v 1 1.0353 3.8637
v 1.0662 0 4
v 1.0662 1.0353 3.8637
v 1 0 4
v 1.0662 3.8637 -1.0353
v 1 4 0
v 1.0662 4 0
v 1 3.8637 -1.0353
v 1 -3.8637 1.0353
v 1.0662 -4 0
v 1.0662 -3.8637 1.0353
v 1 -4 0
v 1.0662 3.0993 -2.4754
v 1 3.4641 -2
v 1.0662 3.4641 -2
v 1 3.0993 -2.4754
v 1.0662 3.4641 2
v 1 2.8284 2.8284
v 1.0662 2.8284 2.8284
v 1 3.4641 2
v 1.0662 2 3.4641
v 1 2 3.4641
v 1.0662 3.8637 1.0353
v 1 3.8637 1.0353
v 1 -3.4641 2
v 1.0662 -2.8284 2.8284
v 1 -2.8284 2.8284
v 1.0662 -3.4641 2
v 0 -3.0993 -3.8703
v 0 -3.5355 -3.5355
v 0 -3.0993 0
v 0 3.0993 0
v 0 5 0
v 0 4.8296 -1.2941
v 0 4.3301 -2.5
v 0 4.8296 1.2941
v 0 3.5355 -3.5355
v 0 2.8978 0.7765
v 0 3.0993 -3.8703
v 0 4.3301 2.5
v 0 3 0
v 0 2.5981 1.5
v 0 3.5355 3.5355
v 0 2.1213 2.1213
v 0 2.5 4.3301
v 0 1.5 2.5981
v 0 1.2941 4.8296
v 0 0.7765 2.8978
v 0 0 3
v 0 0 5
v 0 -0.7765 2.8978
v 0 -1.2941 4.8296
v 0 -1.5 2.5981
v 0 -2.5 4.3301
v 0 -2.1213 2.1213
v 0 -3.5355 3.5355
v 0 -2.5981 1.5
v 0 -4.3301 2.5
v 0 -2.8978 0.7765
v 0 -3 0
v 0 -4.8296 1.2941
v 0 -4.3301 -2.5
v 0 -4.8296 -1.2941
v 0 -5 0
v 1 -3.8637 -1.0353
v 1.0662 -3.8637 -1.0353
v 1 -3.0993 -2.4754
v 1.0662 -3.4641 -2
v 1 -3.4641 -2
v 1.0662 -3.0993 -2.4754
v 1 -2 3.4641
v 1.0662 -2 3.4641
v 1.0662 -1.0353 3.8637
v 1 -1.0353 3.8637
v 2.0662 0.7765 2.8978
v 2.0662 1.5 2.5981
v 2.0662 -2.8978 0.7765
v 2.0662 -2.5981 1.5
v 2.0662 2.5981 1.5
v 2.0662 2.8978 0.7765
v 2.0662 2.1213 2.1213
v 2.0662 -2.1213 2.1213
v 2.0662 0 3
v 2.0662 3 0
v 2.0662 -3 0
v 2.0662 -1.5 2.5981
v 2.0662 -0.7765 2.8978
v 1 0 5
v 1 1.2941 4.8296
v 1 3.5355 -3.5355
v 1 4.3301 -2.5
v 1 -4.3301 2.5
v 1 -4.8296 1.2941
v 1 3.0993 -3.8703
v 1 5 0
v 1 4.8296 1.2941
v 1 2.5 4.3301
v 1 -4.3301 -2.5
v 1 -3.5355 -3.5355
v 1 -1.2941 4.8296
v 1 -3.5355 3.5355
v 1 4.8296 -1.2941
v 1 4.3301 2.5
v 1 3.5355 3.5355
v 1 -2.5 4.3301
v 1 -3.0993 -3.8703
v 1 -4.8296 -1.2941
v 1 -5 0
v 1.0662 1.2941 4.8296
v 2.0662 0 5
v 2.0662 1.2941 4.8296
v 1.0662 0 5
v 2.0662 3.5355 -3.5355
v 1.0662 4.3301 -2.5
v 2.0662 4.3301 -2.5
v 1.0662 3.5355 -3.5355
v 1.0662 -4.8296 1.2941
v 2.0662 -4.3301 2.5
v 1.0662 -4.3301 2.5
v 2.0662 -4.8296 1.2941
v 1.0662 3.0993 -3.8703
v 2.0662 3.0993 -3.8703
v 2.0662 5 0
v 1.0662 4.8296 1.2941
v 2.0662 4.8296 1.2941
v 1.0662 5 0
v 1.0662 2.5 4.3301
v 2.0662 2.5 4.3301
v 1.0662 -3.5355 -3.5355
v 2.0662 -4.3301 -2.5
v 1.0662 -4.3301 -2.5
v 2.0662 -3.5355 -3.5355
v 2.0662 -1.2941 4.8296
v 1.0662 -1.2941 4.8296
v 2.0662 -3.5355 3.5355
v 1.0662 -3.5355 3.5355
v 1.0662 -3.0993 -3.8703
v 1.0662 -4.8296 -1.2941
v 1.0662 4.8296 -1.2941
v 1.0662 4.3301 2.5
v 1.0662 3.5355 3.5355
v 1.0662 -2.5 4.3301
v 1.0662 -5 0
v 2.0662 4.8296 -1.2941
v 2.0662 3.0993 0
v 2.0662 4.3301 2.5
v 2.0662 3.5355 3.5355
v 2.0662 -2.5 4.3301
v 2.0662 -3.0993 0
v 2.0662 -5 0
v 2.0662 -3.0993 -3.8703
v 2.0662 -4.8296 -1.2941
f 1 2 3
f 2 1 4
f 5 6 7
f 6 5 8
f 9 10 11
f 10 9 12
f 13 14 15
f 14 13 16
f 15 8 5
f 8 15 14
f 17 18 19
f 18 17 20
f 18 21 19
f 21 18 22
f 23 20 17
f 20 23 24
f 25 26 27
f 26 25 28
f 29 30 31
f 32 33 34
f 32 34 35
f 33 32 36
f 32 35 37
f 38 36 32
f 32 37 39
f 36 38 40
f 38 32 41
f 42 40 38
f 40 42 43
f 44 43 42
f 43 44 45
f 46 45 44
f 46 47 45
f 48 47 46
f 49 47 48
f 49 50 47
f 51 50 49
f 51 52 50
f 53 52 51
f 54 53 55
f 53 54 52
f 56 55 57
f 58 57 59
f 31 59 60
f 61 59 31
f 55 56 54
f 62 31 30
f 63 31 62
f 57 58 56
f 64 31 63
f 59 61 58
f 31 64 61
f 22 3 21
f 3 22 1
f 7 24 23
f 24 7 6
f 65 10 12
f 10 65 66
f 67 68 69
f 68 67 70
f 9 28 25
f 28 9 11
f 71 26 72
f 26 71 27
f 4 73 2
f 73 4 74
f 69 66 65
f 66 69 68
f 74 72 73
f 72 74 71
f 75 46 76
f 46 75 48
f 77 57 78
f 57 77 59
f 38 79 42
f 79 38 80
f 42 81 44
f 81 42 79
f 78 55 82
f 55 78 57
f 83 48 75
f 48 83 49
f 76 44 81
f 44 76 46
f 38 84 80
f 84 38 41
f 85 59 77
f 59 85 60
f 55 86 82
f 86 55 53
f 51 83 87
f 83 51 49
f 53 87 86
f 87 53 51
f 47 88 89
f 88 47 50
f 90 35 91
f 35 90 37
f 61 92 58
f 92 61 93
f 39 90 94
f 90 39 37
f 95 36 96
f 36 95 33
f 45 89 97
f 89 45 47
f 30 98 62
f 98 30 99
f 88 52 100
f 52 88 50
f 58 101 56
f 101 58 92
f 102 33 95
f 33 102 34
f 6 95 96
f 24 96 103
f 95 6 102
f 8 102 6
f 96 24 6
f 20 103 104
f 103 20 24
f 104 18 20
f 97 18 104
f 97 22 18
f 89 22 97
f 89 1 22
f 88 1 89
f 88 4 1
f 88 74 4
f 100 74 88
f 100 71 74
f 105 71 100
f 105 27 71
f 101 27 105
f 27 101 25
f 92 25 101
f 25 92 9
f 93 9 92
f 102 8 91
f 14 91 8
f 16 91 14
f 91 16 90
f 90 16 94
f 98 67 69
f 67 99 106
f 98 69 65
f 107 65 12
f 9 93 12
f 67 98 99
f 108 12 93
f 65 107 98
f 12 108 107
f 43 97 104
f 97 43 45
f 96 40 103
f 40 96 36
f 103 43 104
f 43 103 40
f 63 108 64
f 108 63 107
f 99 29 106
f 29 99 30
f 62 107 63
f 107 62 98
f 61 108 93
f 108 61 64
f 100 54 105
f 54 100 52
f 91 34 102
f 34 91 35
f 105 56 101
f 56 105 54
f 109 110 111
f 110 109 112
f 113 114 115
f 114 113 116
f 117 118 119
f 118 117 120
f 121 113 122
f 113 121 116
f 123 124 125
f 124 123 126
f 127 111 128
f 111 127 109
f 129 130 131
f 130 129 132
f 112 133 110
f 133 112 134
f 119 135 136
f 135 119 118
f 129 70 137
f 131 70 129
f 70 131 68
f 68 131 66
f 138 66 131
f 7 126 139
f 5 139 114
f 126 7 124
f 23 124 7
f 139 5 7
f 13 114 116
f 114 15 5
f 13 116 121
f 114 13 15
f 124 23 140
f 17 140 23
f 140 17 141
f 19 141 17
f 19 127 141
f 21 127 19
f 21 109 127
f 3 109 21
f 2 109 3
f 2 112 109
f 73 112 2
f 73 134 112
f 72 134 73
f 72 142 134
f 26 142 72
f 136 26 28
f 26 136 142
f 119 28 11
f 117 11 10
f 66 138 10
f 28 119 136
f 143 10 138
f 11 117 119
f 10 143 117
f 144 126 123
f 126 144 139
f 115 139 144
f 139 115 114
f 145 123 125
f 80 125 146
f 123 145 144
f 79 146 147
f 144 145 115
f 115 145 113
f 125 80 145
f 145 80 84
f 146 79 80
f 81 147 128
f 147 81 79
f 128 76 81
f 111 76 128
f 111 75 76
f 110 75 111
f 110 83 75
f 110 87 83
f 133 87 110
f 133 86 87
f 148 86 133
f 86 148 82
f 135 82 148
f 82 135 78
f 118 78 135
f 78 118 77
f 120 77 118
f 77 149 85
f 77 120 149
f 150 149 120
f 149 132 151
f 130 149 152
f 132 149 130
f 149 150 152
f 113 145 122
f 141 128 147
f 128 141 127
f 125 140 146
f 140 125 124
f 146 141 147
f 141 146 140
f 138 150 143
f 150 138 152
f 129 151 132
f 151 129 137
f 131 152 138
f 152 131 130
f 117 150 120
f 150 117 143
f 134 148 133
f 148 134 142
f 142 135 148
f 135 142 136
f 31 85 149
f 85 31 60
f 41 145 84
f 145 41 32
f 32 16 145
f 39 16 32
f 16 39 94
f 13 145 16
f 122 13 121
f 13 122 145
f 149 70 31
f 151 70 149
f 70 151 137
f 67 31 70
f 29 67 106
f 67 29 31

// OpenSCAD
// file: ../build_environments.scad
// build_environments.scad: modules to build level sections
//

module pool(diameter=10.0, wall_height=2.0, step_width=3.0, connections=[])
{
    difference() {
        union() {
        difference() {
            cylinder(h=0.5,r1=diameter+step_width,r2=diameter+step_width,$fn=48);
            translate([0,0,-0.1])
                cylinder(h=0.7,r1=diameter,r2=diameter,$fn=48);
        }
        difference() {
            cylinder(h=wall_height,r1=diameter+step_width+1.0,r2=diameter+step_width+1.0,$fn=48);
            translate([0,0,-0.1])
                cylinder(h=wall_height+0.2,r1=diameter+step_width,r2=diameter+step_width,$fn=48);
        }
        }
    
        for (c = connections)
        {
            rotate([0,90,0]) {
                angle = atan2(c[1],c[0]);
                rotate([-angle,0,0]) {
                    cylinder(h=diameter+5.0,r1=c[2],r2=c[2],$fn=48);
                }
            }
        }
    }
}

module straight(length=10.0, width=2.0, dy1=0.0, dy2=0.0, dz=0.0)
{
    dims = [0, 0, 0, 0, 0, (dz/length)];
    matrix = [
        [ 1, dims[0], dims[1], 0 ],
        [ dims[2], 1, dims[4], 0 ],
        [ dims[5], dims[3], 1, 0 ],
        [ 0, 0, 0, 1 ]
    ];
    multmatrix(matrix)
    difference() {
        translate([dy1,0,0])
        union() {
            rotate([0,90,0]) {
                difference() {
                    cylinder(h=(length-dy1-dy2),r1=width+1.0,r2=width+1.0,$fn=24);
                    translate([0,0,-0.1])
                        cylinder(h=(length-dy1-dy2+0.2),r1=width,r2=width,$fn=24);
                }
                difference() {
                    cylinder(h=1.0,r1=width+2.0,r2=width+2.0,$fn=24);
                    translate([0,0,-0.1])
                        cylinder(h=1.2,r1=width,r2=width,$fn=24);
                }
                translate([0,0,(length-dy1-dy2)-1.0]) {
                    difference() {
                        cylinder(h=1.0,r1=width+2.0,r2=width+2.0,$fn=24);
                        translate([0,0,-0.1])
                            cylinder(h=1.2,r1=width,r2=width,$fn=24);
                    }
                }
            }
        }
        translate([0,0,-(2*width+4.0)/2])
            cube([3*length,3*length,2*width+4.0],center=true);
    }
}

module curve(p0=[0,0], center=[0,0], dir=1, angle=0.0, width=2.0)
{
    radius = sqrt((p0[0]-center[0])*(p0[0]-center[0]) + (p0[1]-center[1])*(p0[1]-center[1]));
    if (dir == 0) {
        difference() {
            rotate([0,0,-90])
            difference() {
                rotate_extrude(angle = angle, convexity = 10, $fn=32)
                    translate([radius, 0, 0])
                        circle(r = width+1.0,$fn=24);
                rotate([0,0,-1.0])
                    rotate_extrude(angle = angle+2.0, convexity = 10, $fn=32)
                        translate([radius, 0, 0])
                            circle(r = width,$fn=24);
            }
            translate([0,0,-(2*width+4.0)/2])
                cube([5*radius,5*radius,2*width+4.0],center=true);
        }
    }
    else {
        difference() {
            rotate([0,0,90])
            difference() {
                rotate_extrude(angle = -angle, convexity = 10, $fn=32)
                    translate([radius, 0, 0])
                        circle(r = width+1.0,$fn=24);
                rotate([0,0,1.0])
                    rotate_extrude(angle = -angle-2.0, convexity = 10, $fn=32)
                        translate([radius, 0, 0])
                            circle(r = width,$fn=24);
            }
            translate([0,0,-(2*width+4.0)/2])
                cube([5*radius,5*radius,2*width+4.0],center=true);
        }
    }

}

// test pool
//pool(diameter=12.0000, wall_height=3.0000, step_width=3.0000, connections=[[0.0000,-26.0000,2.0000], [23.6074,0.0000,2.0000]]);

// test straight, slope
//straight(length=26.0000, width=2.0000, dy1=11.8322, dy2=6.7082, dz=0.0000);
//straight(length=29.1549, width=12.0000, dy1=0.0000, dy2=0.0000, dz=-15.0000);

// test curve
//curve(p0=[23.6074, 0.0000], center=[23.6074, 5.0000], dir=0, angle=60.1011, width=2.0000);
//curve(p0=[33.6426, 12.4219], center=[37.9771, 9.9295], dir=1, angle=120.4627, width=2.0000);
// main file
use <../build_environments.scad>;
straight(length=2.0662, width=3.0000, dy1=0.0000, dy2=0.0000, dz=0.0000);
